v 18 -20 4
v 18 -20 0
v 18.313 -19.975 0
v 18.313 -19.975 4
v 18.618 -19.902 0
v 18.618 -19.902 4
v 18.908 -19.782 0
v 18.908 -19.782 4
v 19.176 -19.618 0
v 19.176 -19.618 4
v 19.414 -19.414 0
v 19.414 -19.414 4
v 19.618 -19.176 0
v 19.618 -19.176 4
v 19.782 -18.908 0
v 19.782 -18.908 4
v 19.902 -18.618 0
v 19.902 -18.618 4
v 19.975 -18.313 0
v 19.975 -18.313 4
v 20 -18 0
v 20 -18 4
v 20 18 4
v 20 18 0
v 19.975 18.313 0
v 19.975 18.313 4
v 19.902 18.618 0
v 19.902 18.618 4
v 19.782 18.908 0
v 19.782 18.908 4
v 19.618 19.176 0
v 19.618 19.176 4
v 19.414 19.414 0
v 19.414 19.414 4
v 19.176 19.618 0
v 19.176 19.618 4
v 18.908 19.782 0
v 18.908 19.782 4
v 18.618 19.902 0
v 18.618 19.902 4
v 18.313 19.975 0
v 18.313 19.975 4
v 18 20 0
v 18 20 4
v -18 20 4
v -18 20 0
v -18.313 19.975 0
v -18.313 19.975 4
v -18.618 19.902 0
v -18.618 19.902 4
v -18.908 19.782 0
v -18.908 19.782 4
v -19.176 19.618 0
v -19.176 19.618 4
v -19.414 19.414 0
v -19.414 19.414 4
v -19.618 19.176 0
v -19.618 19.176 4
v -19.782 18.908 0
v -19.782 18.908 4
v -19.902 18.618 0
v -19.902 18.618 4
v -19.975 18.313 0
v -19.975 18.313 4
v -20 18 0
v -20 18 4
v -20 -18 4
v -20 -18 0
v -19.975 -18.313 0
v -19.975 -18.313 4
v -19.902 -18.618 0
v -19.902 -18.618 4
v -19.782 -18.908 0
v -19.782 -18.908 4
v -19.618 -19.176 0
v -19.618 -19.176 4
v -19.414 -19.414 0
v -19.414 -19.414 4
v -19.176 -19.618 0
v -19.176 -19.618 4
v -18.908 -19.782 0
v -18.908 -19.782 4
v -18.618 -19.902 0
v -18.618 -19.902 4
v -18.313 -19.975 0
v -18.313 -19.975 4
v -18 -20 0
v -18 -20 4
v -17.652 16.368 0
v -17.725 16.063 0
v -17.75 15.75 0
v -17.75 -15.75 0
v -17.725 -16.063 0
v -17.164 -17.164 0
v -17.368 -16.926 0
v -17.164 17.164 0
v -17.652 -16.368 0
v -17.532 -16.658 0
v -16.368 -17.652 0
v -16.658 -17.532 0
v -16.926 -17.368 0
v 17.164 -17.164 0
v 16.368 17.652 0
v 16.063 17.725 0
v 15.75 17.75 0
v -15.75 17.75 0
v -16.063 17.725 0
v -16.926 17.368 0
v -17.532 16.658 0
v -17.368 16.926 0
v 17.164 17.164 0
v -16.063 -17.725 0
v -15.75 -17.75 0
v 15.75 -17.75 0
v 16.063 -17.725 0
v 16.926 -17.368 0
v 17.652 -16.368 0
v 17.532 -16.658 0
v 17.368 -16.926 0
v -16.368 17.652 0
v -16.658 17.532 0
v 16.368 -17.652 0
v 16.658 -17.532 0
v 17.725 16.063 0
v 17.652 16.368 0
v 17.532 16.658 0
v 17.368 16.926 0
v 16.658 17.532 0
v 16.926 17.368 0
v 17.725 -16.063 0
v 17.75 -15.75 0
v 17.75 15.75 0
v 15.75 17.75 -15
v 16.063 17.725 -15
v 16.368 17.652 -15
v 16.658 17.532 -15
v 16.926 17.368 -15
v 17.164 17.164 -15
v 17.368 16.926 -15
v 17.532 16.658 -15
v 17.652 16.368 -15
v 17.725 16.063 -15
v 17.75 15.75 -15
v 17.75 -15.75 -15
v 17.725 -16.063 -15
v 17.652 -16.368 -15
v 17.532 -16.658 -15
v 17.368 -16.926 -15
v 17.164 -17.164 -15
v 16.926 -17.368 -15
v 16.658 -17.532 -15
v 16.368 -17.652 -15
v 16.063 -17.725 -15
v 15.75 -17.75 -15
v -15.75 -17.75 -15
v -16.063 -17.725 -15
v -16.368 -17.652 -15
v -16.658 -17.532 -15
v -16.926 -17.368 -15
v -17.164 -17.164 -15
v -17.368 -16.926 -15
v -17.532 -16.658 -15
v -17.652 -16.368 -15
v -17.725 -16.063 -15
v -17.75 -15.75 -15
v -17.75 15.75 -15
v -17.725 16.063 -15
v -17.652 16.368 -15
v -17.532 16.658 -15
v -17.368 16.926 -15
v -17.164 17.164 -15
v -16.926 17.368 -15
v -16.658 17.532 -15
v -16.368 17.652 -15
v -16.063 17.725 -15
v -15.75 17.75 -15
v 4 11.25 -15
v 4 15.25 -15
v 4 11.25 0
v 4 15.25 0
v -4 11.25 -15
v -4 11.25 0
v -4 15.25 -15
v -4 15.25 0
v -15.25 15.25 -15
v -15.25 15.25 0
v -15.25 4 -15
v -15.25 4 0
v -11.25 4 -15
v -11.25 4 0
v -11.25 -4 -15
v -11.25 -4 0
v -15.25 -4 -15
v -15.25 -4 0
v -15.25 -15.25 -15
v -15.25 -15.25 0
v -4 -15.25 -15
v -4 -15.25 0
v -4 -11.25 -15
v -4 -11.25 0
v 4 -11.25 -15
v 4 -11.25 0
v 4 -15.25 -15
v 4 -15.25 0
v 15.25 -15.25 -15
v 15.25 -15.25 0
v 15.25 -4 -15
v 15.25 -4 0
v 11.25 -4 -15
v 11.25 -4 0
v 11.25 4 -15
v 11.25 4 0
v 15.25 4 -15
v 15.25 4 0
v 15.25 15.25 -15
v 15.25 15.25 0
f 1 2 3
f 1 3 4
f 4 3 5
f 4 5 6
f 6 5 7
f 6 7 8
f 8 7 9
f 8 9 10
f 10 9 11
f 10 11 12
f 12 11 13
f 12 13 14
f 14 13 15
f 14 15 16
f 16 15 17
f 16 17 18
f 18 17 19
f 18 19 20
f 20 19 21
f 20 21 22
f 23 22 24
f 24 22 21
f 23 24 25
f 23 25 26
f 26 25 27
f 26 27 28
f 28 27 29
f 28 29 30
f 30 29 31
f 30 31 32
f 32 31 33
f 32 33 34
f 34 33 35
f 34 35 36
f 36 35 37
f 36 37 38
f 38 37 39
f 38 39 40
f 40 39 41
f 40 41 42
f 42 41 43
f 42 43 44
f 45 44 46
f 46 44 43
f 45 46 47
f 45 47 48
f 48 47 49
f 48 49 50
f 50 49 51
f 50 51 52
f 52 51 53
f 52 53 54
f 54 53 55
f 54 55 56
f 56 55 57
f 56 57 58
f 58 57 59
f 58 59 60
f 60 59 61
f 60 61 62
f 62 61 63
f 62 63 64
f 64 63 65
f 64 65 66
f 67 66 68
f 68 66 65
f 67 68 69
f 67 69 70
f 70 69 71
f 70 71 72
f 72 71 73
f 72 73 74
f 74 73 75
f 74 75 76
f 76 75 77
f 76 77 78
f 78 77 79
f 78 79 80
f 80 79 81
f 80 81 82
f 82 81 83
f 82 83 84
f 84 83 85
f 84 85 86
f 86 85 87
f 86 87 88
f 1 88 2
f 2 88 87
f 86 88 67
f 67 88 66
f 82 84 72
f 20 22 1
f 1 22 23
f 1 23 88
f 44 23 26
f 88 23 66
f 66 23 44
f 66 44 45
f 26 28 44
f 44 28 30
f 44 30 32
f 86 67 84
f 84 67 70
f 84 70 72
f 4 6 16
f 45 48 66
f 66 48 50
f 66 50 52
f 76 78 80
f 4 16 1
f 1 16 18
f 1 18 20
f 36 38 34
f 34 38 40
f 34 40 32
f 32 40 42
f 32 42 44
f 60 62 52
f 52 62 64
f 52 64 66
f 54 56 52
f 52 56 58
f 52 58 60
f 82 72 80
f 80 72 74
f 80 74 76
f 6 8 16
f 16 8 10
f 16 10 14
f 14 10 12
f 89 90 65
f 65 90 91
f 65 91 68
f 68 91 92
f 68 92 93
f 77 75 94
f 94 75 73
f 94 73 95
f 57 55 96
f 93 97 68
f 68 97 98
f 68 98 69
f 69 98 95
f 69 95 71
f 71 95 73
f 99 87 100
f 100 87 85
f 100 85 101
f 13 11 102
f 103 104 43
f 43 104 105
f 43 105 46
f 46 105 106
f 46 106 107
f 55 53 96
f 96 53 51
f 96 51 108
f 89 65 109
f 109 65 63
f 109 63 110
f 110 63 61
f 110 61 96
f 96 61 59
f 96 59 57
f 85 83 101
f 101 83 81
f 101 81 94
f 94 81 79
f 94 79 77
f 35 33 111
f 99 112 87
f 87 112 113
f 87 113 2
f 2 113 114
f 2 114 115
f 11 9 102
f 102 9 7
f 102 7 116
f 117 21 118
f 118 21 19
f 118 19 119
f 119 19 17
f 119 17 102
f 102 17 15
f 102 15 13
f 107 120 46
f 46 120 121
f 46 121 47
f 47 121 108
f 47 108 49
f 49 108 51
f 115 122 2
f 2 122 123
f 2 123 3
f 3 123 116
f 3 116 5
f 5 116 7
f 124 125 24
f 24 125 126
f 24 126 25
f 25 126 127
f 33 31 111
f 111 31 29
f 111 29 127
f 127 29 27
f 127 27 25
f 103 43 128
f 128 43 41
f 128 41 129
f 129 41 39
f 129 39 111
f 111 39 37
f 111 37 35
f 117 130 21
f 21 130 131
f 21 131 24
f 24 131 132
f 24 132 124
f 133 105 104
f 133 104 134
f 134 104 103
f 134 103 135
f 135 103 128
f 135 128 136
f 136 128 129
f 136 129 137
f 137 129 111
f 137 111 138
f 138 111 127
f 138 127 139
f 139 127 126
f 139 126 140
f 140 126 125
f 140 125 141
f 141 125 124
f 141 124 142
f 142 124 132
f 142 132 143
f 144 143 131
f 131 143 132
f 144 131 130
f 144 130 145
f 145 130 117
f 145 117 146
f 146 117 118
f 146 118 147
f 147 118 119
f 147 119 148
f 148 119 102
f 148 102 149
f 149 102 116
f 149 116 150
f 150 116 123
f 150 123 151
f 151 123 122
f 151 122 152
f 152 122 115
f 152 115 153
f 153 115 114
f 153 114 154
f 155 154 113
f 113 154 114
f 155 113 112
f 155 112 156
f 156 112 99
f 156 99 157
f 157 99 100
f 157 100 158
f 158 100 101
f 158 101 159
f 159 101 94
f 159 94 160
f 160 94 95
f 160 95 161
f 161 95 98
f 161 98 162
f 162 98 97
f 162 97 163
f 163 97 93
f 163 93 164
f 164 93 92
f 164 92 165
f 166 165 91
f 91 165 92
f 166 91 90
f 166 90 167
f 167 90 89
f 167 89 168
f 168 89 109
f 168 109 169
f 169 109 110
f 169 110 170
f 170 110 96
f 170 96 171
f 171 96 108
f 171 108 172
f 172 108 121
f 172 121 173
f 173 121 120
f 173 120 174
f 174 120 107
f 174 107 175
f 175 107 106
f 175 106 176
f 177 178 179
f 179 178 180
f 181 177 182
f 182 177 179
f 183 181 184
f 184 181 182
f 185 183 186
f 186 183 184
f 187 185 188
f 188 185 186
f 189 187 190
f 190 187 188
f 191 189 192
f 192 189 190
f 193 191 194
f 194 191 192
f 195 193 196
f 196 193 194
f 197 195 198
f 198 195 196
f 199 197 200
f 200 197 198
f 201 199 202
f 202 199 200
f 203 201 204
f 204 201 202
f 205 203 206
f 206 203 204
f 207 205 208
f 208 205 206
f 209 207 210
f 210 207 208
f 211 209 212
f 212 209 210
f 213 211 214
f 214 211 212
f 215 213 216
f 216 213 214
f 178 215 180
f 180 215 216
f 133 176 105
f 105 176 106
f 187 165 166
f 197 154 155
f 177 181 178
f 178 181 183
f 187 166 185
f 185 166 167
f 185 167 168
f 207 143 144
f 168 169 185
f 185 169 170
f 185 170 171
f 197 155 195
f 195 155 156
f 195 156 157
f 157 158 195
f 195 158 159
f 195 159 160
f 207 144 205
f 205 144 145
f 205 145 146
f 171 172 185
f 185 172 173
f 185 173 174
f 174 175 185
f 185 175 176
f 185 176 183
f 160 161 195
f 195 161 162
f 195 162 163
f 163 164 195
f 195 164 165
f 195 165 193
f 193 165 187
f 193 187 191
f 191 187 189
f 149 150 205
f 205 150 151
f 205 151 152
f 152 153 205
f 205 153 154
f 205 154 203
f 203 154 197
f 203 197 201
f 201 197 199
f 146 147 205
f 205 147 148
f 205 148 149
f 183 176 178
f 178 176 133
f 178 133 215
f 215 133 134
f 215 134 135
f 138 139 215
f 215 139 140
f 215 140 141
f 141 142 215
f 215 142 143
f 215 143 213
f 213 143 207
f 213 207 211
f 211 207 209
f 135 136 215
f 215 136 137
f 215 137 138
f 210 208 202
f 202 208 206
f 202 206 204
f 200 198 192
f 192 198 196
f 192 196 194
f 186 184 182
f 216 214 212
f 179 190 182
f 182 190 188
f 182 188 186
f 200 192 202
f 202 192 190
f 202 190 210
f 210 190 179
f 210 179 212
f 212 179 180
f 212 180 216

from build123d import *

# Parameters (mm, degrees)
P_IDAT_VYSUNUT_M1_DEPTH = 4
SKICA2_W                = 30.5
SKICA2_H                = 30.5
SKICA2_W_2              = 4
SKICA2_H_2              = 4
P_IDAT_VYSUNUT_M2_DEPTH = 15


with BuildPart() as part:
    # Skica1 → Přidat vysunutím1 (new body)
    with BuildSketch(Plane.XY):
        with BuildLine():
            Line((-18, 20), (18, 20))
            ThreePointArc((18, 20), (19.414213562, 19.414213562), (20, 18))
            Line((20, 18), (20, -18))
            ThreePointArc((20, -18), (19.414213562, -19.414213562), (18, -20))
            Line((18, -20), (-18, -20))
            ThreePointArc((-18, -20), (-19.414213562, -19.414213562), (-20, -18))
            Line((-20, -18), (-20, 18))
            ThreePointArc((-20, 18), (-19.414213562, 19.414213562), (-18, 20))
        make_face()
    extrude(amount=P_IDAT_VYSUNUT_M1_DEPTH)

    # Skica2 → Přidat vysunutím2 (add)
    with BuildSketch(Plane(origin=(0, 0, 0), x_dir=(-1, 0, 0), z_dir=(0, 0, -1))):
        with BuildLine():
            ThreePointArc((-17.75, 15.75), (-17.164213562, 17.164213562), (-15.75, 17.75))
            Line((-15.75, 17.75), (15.75, 17.75))
            ThreePointArc((15.75, 17.75), (17.164213562, 17.164213562), (17.75, 15.75))
            Line((17.75, 15.75), (17.75, -15.75))
            ThreePointArc((17.75, -15.75), (17.164213562, -17.164213562), (15.75, -17.75))
            Line((15.75, -17.75), (-15.75, -17.75))
            ThreePointArc((-15.75, -17.75), (-17.164213562, -17.164213562), (-17.75, -15.75))
            Line((-17.75, -15.75), (-17.75, 15.75))
        make_face()
        Rectangle(SKICA2_W, SKICA2_H, mode=Mode.SUBTRACT)
        with Locations((-2, 13.25)):
            Rectangle(SKICA2_W_2, SKICA2_H_2)
        with Locations((2, 13.25)):
            Rectangle(SKICA2_W_2, SKICA2_H_2)
        with Locations((13.25, 2)):
            Rectangle(SKICA2_W_2, SKICA2_H_2)
        with Locations((13.25, -2)):
            Rectangle(SKICA2_W_2, SKICA2_H_2)
        with Locations((2, -13.25)):
            Rectangle(SKICA2_W_2, SKICA2_H_2)
        with Locations((-2, -13.25)):
            Rectangle(SKICA2_W_2, SKICA2_H_2)
        with Locations((-13.25, 2)):
            Rectangle(SKICA2_W_2, SKICA2_H_2)
        with Locations((-13.25, -2)):
            Rectangle(SKICA2_W_2, SKICA2_H_2)
    extrude(amount=P_IDAT_VYSUNUT_M2_DEPTH)


solid = part.part
